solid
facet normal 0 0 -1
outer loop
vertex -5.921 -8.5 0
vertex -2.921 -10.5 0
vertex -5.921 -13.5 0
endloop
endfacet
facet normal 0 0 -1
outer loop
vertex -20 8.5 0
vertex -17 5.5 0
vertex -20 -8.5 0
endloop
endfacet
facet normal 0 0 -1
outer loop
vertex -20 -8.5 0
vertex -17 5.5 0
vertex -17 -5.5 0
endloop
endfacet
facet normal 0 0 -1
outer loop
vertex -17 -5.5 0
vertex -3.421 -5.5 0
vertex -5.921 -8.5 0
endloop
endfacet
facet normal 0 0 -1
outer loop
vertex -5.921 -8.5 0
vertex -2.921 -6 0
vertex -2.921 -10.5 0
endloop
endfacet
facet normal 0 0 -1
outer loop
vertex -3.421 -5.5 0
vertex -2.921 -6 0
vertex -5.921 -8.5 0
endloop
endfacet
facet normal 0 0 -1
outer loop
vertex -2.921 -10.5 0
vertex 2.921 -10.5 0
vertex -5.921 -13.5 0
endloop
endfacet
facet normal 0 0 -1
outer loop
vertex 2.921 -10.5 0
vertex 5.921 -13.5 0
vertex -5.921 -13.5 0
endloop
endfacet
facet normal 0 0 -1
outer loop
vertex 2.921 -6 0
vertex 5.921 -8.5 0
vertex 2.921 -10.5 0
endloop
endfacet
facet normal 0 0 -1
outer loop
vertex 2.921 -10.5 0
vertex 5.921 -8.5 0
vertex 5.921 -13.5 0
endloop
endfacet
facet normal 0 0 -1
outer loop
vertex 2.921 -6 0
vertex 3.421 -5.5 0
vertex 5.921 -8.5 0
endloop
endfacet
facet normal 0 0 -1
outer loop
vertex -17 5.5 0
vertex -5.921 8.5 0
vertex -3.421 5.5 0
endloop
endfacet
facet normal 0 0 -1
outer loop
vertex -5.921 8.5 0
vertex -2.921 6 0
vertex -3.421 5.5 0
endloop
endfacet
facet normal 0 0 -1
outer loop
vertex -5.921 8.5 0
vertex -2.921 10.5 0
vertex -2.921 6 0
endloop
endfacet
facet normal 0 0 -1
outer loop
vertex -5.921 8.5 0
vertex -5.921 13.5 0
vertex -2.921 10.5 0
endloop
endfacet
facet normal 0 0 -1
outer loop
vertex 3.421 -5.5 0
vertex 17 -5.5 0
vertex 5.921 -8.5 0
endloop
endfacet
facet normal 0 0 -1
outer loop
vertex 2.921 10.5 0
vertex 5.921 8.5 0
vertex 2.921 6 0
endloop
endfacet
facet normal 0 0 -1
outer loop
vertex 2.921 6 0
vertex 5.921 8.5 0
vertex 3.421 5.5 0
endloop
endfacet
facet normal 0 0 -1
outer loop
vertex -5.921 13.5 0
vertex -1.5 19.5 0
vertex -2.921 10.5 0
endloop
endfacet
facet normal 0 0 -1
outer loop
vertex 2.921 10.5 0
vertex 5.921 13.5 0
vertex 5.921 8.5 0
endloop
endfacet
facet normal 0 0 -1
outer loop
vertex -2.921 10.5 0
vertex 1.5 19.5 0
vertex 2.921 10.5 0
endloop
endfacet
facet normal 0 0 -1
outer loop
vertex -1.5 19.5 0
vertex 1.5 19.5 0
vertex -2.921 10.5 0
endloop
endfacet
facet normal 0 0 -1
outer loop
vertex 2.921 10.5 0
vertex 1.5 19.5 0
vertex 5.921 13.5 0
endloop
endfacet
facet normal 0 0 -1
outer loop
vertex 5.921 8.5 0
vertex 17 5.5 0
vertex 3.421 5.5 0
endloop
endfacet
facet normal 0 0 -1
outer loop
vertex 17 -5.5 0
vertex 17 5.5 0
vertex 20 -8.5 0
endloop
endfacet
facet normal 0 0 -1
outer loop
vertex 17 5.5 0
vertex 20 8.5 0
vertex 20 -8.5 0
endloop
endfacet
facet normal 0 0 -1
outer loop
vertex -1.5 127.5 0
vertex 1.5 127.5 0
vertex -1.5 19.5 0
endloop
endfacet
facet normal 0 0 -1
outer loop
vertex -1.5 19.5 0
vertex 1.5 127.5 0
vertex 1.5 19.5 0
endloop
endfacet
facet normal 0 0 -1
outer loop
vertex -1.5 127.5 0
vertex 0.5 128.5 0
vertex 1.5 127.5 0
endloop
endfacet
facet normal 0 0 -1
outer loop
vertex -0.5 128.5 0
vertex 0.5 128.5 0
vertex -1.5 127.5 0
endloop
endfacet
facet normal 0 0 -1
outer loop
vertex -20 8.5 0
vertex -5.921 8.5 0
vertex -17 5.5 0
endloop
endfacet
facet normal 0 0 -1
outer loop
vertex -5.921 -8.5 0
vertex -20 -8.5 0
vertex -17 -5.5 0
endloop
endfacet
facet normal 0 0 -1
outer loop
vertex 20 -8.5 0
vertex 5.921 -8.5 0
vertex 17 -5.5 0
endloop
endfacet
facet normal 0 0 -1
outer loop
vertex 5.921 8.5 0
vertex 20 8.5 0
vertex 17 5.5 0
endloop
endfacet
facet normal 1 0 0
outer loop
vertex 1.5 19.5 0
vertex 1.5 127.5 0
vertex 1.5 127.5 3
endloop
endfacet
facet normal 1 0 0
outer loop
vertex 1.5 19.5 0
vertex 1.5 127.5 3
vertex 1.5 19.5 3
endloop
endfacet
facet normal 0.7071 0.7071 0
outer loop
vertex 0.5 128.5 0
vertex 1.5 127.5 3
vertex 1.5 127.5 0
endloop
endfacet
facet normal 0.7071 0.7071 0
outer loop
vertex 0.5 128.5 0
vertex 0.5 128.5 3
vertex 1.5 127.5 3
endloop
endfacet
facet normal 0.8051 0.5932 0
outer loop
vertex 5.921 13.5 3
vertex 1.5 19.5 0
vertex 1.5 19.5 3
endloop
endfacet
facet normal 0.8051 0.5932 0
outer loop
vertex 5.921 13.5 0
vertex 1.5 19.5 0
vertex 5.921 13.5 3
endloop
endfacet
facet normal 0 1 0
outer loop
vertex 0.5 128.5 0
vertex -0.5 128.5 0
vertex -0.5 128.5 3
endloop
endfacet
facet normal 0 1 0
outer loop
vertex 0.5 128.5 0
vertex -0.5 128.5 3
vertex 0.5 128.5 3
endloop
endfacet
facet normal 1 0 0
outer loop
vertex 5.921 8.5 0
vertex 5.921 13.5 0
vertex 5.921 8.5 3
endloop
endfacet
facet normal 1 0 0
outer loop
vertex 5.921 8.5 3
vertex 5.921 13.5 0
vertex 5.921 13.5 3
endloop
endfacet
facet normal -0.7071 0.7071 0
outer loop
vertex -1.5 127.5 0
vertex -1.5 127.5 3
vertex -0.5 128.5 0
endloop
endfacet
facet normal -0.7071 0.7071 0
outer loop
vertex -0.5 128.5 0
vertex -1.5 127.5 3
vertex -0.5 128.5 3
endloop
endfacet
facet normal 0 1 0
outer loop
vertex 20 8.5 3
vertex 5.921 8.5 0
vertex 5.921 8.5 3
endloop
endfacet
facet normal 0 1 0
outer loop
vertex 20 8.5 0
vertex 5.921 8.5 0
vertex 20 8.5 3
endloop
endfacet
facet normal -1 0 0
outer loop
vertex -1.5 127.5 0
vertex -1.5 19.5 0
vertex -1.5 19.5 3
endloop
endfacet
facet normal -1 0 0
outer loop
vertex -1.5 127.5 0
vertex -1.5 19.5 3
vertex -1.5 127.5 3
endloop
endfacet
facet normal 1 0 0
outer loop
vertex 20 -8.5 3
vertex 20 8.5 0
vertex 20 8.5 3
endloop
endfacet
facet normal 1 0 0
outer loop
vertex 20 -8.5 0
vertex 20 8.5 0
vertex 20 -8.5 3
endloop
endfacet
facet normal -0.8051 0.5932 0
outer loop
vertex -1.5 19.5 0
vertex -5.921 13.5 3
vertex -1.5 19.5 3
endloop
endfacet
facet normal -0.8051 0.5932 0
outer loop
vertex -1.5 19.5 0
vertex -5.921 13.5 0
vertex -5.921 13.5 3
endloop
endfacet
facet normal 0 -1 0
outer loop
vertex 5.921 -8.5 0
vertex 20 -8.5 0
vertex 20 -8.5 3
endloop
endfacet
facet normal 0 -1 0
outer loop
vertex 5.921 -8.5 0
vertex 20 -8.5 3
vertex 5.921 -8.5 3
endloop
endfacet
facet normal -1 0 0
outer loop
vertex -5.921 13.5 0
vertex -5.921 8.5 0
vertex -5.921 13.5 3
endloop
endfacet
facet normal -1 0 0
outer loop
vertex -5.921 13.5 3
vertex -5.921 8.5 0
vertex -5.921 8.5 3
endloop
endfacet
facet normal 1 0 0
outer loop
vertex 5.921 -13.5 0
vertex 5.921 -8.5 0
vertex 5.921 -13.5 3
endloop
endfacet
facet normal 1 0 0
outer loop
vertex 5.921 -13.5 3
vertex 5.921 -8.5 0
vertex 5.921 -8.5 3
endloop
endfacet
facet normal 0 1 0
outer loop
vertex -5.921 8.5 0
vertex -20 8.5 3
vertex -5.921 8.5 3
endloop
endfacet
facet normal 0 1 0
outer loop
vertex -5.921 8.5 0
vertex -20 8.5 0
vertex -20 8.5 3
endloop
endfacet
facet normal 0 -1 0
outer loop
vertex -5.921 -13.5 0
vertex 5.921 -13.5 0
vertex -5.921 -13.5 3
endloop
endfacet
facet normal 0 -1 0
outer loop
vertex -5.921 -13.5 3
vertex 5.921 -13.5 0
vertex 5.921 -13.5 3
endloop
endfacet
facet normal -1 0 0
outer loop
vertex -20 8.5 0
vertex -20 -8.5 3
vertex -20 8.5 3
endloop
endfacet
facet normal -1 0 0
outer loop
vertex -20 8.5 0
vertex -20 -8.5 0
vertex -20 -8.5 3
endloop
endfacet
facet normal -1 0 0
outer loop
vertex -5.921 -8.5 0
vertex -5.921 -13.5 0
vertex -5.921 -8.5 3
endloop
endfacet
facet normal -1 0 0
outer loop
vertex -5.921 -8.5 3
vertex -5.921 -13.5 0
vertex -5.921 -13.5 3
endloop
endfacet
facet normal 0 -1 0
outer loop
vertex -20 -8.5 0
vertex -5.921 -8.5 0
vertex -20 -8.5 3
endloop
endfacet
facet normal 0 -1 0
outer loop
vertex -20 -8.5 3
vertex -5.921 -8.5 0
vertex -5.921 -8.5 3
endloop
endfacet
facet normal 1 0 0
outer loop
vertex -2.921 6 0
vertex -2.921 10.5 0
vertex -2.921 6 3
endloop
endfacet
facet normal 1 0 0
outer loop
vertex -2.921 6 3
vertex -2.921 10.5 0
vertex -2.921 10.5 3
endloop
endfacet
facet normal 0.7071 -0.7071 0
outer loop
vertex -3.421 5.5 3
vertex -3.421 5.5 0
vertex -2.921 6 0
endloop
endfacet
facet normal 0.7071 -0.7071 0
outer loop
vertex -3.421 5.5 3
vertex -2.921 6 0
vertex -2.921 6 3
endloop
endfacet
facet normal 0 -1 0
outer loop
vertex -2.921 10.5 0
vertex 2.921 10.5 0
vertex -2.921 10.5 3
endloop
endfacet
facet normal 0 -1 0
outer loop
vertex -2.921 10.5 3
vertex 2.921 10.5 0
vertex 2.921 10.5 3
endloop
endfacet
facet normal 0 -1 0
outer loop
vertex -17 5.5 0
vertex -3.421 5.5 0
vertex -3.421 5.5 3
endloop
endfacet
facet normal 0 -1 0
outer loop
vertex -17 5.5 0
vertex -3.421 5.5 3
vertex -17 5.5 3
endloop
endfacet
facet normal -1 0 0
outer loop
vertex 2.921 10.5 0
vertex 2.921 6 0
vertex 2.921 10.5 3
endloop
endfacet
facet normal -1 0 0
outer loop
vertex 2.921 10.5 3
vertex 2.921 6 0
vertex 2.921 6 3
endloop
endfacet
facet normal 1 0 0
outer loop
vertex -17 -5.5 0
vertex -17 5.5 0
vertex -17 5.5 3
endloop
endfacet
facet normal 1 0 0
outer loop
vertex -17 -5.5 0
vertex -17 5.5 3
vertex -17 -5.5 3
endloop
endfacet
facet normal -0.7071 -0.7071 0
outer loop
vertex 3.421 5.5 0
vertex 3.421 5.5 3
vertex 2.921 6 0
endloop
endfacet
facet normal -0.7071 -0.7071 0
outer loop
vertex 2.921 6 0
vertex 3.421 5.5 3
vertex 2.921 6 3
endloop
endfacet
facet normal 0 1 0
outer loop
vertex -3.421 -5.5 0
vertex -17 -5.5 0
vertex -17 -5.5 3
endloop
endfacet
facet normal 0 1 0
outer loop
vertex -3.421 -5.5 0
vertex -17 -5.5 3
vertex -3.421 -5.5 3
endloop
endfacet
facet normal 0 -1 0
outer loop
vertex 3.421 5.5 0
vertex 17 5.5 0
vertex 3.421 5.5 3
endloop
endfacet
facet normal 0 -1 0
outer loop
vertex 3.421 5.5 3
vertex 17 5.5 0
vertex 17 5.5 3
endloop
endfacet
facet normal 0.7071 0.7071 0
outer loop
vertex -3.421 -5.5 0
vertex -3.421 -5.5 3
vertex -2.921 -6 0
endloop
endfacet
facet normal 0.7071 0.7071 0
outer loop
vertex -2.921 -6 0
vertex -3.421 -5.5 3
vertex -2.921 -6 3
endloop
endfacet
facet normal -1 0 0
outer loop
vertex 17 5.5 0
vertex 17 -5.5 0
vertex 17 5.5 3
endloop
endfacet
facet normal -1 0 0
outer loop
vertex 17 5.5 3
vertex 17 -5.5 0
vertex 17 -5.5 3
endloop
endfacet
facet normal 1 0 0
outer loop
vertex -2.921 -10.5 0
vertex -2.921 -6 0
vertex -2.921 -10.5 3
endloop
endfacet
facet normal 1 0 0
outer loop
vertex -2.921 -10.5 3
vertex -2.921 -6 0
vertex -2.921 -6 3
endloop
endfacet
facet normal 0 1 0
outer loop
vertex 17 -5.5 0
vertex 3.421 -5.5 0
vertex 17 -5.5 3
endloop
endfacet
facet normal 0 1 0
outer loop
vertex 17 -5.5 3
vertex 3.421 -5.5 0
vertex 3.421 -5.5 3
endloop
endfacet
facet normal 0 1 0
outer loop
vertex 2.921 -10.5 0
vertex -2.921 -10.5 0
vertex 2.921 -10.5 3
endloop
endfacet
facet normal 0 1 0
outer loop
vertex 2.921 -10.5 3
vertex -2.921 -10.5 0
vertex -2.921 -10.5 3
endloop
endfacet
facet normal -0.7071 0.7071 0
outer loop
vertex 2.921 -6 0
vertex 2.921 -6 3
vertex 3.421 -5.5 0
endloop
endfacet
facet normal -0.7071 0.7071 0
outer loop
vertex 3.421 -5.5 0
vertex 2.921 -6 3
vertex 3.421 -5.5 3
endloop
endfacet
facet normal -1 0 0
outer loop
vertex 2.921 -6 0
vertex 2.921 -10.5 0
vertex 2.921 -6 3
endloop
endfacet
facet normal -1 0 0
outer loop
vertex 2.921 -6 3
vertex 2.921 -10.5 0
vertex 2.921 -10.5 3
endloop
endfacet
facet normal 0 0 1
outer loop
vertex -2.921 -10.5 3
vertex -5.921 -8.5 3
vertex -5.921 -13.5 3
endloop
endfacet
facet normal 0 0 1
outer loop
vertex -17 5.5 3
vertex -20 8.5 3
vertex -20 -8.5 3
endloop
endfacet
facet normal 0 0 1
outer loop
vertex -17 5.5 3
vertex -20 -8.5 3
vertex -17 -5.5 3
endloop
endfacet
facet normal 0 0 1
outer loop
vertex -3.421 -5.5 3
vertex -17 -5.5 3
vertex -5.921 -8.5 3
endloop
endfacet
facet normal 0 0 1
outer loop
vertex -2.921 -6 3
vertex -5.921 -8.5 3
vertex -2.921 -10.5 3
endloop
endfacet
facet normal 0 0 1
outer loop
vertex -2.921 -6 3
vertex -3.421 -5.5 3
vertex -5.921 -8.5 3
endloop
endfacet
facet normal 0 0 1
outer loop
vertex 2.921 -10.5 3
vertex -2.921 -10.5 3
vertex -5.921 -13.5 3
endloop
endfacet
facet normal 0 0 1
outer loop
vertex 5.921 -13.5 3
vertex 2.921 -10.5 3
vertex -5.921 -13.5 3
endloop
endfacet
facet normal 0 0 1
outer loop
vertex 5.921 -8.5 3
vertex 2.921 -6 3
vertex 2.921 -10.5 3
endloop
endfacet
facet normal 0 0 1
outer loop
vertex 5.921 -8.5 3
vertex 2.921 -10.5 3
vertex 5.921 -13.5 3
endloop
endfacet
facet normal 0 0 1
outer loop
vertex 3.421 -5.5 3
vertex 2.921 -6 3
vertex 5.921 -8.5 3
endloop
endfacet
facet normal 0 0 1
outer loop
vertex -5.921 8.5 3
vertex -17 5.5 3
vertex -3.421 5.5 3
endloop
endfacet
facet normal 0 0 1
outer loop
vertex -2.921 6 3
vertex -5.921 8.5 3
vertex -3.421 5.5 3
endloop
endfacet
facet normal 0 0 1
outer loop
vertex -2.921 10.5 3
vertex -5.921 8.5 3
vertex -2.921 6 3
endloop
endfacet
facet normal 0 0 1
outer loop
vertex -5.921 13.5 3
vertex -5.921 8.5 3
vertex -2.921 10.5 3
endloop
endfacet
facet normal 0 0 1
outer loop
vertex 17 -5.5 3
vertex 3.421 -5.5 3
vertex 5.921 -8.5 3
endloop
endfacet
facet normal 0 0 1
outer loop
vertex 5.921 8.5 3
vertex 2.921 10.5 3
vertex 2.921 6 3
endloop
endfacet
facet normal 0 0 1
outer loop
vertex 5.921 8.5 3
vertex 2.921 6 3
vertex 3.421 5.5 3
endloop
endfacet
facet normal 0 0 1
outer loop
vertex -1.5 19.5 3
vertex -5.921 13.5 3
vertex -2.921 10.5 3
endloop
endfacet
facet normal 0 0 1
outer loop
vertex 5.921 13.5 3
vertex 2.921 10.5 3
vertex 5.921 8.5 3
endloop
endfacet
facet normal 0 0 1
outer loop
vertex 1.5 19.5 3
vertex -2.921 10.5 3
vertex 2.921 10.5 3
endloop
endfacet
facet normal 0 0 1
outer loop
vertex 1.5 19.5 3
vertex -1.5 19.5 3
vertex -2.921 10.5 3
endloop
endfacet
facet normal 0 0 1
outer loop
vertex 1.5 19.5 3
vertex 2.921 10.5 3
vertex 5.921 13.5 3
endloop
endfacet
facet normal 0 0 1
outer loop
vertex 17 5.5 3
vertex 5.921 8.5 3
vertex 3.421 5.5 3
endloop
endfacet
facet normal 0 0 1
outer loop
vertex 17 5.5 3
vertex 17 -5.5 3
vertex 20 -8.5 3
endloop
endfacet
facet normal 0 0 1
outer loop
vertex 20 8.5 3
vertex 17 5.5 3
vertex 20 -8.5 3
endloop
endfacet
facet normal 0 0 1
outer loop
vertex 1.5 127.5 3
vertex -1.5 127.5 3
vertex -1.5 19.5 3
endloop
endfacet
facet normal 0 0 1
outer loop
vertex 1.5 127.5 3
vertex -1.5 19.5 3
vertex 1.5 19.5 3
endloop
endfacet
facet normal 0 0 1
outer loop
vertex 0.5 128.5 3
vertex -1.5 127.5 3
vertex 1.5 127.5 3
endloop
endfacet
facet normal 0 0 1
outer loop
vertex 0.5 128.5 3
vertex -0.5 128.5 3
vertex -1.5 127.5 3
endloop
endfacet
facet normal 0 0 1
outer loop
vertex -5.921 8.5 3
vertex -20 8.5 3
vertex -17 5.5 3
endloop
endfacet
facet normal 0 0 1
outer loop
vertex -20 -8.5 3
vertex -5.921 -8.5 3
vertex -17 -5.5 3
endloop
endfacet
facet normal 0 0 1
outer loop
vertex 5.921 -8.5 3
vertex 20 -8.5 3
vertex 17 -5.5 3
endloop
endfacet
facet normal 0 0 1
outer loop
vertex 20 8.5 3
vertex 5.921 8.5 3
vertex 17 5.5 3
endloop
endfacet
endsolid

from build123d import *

# Parameters (mm, degrees)
PAD_DEPTH       = 3
CHAMFER_SIZE    = 0.5
CHAMFER001_SIZE = 1


with BuildPart() as part:
    # Sketch → Pad (new body)
    with BuildSketch(Plane.XY):
        Polygon((-5.921, -13.5), (5.921, -13.5), (5.921, -8.5), (20, -8.5), (20, 8.5), (5.921, 8.5), (5.921, 13.5), (1.5, 19.5), (1.5, 128.5), (-1.5, 128.5), (-1.5, 19.5), (-5.921, 13.5), (-5.921, 8.5), (-20, 8.5), (-20, -8.5), (-5.921, -8.5), align=None)
        Polygon((2.921, -10.5), (-2.921, -10.5), (-2.921, -5.5), (-17, -5.5), (-17, 5.5), (-2.921, 5.5), (-2.921, 10.5), (2.921, 10.5), (2.921, 5.5), (17, 5.5), (17, -5.5), (2.921, -5.5), align=None, mode=Mode.SUBTRACT)
    extrude(amount=PAD_DEPTH)

    # Chamfer
    chamfer_edges = [part.edges().sort_by_distance(p)[0] for p in [
        (-2.921, 5.5, 1.5),
        (2.921, 5.5, 1.5),
        (-2.921, -5.5, 1.5),
        (2.921, -5.5, 1.5),
    ]]
    chamfer(chamfer_edges, length=CHAMFER_SIZE)

    # Chamfer001
    chamfer001_edges = [part.edges().sort_by_distance(p)[0] for p in [
        (1.5, 128.5, 1.5),
        (-1.5, 128.5, 1.5),
    ]]
    chamfer(chamfer001_edges, length=CHAMFER001_SIZE)


solid = part.part
